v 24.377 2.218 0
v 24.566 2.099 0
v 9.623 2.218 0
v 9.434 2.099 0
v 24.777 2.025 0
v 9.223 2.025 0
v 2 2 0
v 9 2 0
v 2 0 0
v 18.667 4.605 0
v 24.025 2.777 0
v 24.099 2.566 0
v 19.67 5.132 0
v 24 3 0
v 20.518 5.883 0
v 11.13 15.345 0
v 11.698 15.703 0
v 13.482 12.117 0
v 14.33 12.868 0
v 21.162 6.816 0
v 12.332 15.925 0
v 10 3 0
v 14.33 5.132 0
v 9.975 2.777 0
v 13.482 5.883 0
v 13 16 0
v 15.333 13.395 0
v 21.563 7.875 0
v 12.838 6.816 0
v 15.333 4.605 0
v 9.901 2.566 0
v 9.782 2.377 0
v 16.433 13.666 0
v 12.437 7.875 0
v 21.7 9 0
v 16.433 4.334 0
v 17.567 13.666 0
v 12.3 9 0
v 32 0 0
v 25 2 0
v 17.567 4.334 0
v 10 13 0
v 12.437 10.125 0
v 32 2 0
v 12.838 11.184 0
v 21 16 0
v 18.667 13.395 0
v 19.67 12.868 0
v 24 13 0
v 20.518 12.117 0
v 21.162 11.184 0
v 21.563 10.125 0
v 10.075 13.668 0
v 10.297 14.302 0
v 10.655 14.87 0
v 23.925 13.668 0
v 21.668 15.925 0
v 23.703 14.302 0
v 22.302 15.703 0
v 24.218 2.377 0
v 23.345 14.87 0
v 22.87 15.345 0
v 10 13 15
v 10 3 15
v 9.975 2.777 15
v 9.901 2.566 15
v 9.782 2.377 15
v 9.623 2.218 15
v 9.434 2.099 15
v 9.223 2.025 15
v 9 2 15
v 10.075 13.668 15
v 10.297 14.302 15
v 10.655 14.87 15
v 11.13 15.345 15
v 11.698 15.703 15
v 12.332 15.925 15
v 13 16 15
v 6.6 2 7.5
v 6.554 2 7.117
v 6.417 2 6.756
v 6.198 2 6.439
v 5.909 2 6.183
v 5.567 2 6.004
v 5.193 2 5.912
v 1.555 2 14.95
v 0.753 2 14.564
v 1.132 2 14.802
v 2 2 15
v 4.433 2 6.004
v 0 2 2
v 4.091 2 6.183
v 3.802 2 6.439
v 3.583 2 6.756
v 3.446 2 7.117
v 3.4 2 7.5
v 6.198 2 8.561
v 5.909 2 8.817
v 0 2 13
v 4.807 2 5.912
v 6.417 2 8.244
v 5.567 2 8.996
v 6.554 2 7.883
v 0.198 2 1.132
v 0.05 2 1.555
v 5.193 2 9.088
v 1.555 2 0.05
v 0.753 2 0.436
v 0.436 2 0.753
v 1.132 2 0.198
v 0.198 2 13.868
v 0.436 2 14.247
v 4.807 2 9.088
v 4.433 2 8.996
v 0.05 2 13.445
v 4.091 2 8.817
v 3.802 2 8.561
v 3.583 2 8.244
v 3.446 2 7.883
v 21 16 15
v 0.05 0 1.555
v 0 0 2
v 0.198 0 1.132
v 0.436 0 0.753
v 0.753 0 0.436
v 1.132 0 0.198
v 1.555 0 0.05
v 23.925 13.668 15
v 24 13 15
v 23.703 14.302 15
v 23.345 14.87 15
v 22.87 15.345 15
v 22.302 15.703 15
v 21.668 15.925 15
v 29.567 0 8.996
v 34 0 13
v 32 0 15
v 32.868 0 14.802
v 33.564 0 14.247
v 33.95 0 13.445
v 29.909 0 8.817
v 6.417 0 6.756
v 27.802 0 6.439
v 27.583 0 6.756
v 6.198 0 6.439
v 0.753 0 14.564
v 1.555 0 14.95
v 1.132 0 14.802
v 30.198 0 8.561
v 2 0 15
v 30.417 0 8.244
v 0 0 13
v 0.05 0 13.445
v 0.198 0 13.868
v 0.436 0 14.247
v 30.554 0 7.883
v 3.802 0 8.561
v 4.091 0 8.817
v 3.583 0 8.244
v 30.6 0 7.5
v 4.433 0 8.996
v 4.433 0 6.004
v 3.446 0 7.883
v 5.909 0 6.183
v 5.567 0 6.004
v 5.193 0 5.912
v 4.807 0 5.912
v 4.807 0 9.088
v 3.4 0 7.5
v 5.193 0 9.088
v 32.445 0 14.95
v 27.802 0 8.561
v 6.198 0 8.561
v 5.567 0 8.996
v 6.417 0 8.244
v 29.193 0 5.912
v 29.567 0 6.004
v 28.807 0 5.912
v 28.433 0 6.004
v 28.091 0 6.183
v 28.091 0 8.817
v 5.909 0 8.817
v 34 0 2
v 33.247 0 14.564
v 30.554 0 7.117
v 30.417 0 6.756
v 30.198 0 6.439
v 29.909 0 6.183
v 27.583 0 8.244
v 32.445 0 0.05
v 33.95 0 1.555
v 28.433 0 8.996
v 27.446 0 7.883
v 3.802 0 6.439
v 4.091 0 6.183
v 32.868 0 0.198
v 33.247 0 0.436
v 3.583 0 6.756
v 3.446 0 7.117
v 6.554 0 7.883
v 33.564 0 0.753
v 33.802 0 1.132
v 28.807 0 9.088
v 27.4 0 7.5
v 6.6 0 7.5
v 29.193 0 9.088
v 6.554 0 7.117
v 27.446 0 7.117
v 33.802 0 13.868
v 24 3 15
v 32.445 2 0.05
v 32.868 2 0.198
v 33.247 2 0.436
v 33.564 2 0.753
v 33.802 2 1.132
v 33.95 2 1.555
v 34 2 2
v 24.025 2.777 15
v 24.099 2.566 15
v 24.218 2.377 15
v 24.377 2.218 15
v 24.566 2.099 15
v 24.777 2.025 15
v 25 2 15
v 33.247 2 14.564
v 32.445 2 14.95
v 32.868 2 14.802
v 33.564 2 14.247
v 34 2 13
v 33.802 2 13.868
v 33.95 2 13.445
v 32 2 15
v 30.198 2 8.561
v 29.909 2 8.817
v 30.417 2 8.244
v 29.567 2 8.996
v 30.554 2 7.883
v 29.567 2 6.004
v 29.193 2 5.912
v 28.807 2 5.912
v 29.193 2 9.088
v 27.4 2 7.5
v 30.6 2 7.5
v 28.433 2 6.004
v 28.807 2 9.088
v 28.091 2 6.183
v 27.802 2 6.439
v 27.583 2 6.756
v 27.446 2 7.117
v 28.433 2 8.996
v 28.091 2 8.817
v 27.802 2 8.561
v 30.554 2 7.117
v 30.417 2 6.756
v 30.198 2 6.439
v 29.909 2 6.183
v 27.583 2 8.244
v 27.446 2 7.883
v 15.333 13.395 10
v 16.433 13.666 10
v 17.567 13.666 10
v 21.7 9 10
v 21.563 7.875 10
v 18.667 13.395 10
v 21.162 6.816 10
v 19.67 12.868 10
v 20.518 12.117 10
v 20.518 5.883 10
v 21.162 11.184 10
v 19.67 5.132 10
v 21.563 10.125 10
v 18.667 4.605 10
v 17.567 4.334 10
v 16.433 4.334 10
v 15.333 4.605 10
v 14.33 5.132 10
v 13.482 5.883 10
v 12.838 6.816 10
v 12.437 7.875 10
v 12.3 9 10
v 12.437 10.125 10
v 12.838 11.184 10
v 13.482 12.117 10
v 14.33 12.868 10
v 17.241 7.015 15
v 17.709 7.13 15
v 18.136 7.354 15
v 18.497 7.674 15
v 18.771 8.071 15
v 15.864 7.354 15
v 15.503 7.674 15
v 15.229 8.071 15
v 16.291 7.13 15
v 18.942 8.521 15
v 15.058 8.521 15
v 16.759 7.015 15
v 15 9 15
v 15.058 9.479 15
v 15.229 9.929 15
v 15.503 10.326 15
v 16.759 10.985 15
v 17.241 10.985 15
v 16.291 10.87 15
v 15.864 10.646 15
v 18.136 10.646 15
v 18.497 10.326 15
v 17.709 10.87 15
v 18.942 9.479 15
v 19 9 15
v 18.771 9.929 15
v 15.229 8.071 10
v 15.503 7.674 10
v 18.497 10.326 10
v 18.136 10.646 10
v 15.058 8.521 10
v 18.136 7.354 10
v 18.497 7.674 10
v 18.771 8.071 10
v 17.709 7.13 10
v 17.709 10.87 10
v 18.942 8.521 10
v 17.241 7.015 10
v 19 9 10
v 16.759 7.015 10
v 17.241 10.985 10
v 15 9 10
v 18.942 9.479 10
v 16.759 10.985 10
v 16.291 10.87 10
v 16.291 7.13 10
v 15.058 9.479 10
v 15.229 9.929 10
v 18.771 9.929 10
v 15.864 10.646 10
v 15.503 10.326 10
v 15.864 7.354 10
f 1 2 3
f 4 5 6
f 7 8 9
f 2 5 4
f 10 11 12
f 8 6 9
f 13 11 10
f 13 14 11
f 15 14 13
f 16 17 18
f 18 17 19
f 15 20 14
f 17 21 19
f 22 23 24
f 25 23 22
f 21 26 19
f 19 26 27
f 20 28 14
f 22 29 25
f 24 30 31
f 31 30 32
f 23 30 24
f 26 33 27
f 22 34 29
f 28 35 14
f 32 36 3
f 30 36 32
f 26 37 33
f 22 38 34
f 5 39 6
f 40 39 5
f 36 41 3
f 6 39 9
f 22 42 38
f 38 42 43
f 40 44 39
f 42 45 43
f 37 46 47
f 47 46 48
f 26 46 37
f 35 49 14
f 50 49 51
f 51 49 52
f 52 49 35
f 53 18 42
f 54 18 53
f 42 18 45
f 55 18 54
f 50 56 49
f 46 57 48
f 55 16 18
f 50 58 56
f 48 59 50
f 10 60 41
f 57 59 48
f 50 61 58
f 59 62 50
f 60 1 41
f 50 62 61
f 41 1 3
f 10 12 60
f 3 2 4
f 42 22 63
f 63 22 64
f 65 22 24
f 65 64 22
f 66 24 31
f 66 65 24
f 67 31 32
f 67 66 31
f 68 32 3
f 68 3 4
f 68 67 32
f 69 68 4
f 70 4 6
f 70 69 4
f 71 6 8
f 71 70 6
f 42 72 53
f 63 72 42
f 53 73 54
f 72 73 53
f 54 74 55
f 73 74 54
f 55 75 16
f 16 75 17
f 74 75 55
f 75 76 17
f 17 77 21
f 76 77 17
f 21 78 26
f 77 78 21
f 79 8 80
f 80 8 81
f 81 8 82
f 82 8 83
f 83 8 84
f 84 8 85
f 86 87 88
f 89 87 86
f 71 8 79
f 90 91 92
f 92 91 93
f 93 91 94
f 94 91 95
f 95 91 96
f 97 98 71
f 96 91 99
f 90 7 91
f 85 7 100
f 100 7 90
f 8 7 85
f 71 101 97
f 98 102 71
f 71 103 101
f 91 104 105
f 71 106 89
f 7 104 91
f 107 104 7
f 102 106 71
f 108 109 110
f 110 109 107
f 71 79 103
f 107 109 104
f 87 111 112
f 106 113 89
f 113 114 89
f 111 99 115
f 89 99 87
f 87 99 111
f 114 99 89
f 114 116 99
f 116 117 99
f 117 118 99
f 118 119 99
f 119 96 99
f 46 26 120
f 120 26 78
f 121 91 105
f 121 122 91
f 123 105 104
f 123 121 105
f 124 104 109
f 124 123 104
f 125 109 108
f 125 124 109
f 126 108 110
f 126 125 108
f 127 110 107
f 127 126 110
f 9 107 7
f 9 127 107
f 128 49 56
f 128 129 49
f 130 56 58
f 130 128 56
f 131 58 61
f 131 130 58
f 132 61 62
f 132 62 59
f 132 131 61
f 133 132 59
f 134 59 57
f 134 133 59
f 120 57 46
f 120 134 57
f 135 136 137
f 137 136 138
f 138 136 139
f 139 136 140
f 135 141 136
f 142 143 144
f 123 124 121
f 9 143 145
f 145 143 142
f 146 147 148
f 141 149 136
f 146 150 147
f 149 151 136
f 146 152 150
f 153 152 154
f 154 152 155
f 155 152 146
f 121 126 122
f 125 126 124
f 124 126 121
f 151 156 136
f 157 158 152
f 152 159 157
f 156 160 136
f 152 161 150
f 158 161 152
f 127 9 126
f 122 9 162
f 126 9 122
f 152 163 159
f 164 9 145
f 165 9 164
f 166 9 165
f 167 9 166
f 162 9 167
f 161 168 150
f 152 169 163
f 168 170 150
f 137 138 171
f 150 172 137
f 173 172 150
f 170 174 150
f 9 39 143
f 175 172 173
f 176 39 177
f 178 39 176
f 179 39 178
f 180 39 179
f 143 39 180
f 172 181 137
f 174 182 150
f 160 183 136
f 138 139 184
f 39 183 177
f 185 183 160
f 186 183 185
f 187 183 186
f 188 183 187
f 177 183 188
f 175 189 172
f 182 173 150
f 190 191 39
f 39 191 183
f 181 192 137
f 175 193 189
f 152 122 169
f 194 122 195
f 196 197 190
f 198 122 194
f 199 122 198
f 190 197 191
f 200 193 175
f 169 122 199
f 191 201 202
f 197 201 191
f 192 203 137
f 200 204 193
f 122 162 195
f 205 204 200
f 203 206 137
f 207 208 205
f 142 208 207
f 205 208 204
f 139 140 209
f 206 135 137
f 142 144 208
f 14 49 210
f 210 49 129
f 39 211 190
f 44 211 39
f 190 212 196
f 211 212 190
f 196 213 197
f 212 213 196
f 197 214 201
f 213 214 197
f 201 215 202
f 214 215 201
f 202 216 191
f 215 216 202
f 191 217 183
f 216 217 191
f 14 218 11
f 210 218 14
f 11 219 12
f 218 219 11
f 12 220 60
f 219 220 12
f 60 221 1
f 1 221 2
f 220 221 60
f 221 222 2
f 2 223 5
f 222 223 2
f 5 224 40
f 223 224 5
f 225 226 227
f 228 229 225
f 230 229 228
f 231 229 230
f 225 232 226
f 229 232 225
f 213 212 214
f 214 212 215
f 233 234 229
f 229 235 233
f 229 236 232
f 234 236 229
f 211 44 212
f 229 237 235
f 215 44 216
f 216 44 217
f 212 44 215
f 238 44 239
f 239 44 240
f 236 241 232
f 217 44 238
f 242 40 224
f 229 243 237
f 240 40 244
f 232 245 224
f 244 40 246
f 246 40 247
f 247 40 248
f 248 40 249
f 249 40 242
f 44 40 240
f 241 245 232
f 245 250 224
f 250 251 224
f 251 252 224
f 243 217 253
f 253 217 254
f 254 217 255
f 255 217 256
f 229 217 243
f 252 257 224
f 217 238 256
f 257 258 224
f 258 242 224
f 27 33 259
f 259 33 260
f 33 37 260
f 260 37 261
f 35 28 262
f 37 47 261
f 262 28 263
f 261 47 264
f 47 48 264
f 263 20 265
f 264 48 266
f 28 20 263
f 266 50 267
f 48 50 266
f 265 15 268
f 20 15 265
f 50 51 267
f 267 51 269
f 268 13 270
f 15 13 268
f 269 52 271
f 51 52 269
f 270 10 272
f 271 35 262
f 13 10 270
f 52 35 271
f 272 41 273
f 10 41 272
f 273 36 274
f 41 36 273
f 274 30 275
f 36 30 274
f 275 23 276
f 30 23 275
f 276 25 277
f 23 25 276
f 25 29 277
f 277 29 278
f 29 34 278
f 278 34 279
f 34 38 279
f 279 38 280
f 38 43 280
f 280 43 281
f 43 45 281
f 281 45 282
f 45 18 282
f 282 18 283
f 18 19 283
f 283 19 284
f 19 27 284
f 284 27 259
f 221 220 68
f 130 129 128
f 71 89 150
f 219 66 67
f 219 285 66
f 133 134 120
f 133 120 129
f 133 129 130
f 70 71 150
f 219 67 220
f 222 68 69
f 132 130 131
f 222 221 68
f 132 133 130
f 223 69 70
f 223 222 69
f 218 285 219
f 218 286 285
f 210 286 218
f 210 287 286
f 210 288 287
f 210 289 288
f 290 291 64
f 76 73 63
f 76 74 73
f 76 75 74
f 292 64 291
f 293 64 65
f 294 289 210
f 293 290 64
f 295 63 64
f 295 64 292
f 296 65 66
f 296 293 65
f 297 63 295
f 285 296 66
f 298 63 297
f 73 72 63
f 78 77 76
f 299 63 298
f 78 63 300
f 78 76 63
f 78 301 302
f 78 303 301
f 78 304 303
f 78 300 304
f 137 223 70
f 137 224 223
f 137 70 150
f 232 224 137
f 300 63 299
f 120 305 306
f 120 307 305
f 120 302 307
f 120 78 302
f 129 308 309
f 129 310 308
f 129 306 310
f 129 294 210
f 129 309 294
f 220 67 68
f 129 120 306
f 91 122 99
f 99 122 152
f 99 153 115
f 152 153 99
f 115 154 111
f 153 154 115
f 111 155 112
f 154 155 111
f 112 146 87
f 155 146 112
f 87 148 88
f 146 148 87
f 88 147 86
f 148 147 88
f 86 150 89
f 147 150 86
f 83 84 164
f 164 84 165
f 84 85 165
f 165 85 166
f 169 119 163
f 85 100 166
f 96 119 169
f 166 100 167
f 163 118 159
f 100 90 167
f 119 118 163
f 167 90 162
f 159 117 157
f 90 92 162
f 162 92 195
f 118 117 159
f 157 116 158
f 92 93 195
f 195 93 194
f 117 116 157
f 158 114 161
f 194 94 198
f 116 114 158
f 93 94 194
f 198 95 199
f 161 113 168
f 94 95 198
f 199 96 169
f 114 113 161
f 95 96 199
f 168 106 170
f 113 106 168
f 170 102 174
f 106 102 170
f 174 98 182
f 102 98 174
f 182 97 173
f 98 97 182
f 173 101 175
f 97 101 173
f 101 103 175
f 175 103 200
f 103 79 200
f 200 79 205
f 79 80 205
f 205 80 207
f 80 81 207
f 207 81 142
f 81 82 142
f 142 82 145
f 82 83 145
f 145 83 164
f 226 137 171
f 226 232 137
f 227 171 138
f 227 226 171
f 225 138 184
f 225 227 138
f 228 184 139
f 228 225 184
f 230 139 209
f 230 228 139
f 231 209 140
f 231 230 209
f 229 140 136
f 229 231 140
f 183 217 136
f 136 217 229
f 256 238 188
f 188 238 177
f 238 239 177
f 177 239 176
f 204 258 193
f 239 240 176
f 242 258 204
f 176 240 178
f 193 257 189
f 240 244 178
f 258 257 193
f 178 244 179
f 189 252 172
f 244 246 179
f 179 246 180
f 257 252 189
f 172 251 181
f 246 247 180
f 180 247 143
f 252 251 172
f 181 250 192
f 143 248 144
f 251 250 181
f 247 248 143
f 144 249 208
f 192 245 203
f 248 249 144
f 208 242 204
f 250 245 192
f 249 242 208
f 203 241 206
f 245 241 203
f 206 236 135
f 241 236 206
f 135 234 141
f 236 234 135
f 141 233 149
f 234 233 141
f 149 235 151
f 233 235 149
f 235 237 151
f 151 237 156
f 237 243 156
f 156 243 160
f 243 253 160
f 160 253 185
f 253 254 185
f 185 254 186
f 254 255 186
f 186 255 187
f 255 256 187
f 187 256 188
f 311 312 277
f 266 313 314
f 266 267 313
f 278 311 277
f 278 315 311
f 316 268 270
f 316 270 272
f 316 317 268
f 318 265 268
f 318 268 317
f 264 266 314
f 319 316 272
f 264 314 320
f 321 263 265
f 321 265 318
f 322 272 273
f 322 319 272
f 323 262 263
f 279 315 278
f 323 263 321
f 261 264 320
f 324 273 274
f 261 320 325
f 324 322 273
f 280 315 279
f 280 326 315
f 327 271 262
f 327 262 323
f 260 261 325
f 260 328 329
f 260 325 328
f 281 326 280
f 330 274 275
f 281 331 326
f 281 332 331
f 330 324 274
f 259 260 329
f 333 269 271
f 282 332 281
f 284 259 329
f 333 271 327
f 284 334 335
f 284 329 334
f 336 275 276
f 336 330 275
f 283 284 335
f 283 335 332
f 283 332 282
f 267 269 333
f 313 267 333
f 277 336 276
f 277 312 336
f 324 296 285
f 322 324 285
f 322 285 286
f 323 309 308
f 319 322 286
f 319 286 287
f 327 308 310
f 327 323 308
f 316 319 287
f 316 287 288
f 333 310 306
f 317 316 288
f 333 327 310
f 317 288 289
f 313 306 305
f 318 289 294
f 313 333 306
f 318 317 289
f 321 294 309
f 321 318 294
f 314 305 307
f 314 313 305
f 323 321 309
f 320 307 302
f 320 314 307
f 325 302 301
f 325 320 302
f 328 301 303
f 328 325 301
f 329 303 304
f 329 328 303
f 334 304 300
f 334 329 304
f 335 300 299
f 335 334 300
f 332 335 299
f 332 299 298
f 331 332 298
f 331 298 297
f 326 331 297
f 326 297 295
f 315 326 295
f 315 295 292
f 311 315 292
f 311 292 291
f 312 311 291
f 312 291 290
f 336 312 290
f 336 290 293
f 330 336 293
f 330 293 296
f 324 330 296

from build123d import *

# Parameters (mm, degrees)
SKETCH_R        = 2
PAD_DEPTH       = 15
SKETCH001_R     = 4.7
POCKET_DEPTH    = 10
SKETCH002_R     = 1.6
POCKET001_DEPTH = 2.001
FILLET_R        = 2
FILLET001_R     = 3
FILLET002_R     = 1


with BuildPart() as part:
    # Sketch → Pad (new body)
    with BuildSketch(Plane.XY):
        Polygon((0, 0), (34, 0), (34, 2), (24, 2), (24, 16), (10, 16), (10, 2), (0, 2), align=None)
        with Locations((17, 9)):
            Circle(SKETCH_R, mode=Mode.SUBTRACT)
    extrude(amount=PAD_DEPTH)

    # Sketch001 (on Face10 of Pad) → Pocket (cut)
    with BuildSketch(Plane(origin=(0, 0, 0), x_dir=(1, 0, 0), z_dir=(0, 0, -1))):
        with Locations((17, -9)):
            Circle(SKETCH001_R)
    extrude(amount=-POCKET_DEPTH, mode=Mode.SUBTRACT)

    # Sketch002 (on Face7 of Pocket) → Pocket001 (cut, through all)
    with BuildSketch(Plane(origin=(0, 2, 0), x_dir=(-1, 0, 0), z_dir=(0, 1, 0))):
        with Locations((-29, 7.5)):
            Circle(SKETCH002_R)
        with Locations((-5, 7.5)):
            Circle(SKETCH002_R)
    extrude(amount=-POCKET001_DEPTH, mode=Mode.SUBTRACT)

    # Fillet
    fillet_edges = [part.edges().sort_by_distance(p)[0] for p in [
        (34, 1, 15),
        (34, 1, 0),
        (0, 1, 15),
        (0, 1, 0),
    ]]
    fillet(fillet_edges, radius=FILLET_R)

    # Fillet001
    fillet001_edges = [part.edges().sort_by_distance(p)[0] for p in [
        (24, 16, 7.5),
        (10, 16, 7.5),
    ]]
    fillet(fillet001_edges, radius=FILLET001_R)

    # Fillet002
    fillet002_edges = [part.edges().sort_by_distance(p)[0] for p in [
        (24, 2, 7.5),
        (10, 2, 7.5),
    ]]
    fillet(fillet002_edges, radius=FILLET002_R)


solid = part.part
